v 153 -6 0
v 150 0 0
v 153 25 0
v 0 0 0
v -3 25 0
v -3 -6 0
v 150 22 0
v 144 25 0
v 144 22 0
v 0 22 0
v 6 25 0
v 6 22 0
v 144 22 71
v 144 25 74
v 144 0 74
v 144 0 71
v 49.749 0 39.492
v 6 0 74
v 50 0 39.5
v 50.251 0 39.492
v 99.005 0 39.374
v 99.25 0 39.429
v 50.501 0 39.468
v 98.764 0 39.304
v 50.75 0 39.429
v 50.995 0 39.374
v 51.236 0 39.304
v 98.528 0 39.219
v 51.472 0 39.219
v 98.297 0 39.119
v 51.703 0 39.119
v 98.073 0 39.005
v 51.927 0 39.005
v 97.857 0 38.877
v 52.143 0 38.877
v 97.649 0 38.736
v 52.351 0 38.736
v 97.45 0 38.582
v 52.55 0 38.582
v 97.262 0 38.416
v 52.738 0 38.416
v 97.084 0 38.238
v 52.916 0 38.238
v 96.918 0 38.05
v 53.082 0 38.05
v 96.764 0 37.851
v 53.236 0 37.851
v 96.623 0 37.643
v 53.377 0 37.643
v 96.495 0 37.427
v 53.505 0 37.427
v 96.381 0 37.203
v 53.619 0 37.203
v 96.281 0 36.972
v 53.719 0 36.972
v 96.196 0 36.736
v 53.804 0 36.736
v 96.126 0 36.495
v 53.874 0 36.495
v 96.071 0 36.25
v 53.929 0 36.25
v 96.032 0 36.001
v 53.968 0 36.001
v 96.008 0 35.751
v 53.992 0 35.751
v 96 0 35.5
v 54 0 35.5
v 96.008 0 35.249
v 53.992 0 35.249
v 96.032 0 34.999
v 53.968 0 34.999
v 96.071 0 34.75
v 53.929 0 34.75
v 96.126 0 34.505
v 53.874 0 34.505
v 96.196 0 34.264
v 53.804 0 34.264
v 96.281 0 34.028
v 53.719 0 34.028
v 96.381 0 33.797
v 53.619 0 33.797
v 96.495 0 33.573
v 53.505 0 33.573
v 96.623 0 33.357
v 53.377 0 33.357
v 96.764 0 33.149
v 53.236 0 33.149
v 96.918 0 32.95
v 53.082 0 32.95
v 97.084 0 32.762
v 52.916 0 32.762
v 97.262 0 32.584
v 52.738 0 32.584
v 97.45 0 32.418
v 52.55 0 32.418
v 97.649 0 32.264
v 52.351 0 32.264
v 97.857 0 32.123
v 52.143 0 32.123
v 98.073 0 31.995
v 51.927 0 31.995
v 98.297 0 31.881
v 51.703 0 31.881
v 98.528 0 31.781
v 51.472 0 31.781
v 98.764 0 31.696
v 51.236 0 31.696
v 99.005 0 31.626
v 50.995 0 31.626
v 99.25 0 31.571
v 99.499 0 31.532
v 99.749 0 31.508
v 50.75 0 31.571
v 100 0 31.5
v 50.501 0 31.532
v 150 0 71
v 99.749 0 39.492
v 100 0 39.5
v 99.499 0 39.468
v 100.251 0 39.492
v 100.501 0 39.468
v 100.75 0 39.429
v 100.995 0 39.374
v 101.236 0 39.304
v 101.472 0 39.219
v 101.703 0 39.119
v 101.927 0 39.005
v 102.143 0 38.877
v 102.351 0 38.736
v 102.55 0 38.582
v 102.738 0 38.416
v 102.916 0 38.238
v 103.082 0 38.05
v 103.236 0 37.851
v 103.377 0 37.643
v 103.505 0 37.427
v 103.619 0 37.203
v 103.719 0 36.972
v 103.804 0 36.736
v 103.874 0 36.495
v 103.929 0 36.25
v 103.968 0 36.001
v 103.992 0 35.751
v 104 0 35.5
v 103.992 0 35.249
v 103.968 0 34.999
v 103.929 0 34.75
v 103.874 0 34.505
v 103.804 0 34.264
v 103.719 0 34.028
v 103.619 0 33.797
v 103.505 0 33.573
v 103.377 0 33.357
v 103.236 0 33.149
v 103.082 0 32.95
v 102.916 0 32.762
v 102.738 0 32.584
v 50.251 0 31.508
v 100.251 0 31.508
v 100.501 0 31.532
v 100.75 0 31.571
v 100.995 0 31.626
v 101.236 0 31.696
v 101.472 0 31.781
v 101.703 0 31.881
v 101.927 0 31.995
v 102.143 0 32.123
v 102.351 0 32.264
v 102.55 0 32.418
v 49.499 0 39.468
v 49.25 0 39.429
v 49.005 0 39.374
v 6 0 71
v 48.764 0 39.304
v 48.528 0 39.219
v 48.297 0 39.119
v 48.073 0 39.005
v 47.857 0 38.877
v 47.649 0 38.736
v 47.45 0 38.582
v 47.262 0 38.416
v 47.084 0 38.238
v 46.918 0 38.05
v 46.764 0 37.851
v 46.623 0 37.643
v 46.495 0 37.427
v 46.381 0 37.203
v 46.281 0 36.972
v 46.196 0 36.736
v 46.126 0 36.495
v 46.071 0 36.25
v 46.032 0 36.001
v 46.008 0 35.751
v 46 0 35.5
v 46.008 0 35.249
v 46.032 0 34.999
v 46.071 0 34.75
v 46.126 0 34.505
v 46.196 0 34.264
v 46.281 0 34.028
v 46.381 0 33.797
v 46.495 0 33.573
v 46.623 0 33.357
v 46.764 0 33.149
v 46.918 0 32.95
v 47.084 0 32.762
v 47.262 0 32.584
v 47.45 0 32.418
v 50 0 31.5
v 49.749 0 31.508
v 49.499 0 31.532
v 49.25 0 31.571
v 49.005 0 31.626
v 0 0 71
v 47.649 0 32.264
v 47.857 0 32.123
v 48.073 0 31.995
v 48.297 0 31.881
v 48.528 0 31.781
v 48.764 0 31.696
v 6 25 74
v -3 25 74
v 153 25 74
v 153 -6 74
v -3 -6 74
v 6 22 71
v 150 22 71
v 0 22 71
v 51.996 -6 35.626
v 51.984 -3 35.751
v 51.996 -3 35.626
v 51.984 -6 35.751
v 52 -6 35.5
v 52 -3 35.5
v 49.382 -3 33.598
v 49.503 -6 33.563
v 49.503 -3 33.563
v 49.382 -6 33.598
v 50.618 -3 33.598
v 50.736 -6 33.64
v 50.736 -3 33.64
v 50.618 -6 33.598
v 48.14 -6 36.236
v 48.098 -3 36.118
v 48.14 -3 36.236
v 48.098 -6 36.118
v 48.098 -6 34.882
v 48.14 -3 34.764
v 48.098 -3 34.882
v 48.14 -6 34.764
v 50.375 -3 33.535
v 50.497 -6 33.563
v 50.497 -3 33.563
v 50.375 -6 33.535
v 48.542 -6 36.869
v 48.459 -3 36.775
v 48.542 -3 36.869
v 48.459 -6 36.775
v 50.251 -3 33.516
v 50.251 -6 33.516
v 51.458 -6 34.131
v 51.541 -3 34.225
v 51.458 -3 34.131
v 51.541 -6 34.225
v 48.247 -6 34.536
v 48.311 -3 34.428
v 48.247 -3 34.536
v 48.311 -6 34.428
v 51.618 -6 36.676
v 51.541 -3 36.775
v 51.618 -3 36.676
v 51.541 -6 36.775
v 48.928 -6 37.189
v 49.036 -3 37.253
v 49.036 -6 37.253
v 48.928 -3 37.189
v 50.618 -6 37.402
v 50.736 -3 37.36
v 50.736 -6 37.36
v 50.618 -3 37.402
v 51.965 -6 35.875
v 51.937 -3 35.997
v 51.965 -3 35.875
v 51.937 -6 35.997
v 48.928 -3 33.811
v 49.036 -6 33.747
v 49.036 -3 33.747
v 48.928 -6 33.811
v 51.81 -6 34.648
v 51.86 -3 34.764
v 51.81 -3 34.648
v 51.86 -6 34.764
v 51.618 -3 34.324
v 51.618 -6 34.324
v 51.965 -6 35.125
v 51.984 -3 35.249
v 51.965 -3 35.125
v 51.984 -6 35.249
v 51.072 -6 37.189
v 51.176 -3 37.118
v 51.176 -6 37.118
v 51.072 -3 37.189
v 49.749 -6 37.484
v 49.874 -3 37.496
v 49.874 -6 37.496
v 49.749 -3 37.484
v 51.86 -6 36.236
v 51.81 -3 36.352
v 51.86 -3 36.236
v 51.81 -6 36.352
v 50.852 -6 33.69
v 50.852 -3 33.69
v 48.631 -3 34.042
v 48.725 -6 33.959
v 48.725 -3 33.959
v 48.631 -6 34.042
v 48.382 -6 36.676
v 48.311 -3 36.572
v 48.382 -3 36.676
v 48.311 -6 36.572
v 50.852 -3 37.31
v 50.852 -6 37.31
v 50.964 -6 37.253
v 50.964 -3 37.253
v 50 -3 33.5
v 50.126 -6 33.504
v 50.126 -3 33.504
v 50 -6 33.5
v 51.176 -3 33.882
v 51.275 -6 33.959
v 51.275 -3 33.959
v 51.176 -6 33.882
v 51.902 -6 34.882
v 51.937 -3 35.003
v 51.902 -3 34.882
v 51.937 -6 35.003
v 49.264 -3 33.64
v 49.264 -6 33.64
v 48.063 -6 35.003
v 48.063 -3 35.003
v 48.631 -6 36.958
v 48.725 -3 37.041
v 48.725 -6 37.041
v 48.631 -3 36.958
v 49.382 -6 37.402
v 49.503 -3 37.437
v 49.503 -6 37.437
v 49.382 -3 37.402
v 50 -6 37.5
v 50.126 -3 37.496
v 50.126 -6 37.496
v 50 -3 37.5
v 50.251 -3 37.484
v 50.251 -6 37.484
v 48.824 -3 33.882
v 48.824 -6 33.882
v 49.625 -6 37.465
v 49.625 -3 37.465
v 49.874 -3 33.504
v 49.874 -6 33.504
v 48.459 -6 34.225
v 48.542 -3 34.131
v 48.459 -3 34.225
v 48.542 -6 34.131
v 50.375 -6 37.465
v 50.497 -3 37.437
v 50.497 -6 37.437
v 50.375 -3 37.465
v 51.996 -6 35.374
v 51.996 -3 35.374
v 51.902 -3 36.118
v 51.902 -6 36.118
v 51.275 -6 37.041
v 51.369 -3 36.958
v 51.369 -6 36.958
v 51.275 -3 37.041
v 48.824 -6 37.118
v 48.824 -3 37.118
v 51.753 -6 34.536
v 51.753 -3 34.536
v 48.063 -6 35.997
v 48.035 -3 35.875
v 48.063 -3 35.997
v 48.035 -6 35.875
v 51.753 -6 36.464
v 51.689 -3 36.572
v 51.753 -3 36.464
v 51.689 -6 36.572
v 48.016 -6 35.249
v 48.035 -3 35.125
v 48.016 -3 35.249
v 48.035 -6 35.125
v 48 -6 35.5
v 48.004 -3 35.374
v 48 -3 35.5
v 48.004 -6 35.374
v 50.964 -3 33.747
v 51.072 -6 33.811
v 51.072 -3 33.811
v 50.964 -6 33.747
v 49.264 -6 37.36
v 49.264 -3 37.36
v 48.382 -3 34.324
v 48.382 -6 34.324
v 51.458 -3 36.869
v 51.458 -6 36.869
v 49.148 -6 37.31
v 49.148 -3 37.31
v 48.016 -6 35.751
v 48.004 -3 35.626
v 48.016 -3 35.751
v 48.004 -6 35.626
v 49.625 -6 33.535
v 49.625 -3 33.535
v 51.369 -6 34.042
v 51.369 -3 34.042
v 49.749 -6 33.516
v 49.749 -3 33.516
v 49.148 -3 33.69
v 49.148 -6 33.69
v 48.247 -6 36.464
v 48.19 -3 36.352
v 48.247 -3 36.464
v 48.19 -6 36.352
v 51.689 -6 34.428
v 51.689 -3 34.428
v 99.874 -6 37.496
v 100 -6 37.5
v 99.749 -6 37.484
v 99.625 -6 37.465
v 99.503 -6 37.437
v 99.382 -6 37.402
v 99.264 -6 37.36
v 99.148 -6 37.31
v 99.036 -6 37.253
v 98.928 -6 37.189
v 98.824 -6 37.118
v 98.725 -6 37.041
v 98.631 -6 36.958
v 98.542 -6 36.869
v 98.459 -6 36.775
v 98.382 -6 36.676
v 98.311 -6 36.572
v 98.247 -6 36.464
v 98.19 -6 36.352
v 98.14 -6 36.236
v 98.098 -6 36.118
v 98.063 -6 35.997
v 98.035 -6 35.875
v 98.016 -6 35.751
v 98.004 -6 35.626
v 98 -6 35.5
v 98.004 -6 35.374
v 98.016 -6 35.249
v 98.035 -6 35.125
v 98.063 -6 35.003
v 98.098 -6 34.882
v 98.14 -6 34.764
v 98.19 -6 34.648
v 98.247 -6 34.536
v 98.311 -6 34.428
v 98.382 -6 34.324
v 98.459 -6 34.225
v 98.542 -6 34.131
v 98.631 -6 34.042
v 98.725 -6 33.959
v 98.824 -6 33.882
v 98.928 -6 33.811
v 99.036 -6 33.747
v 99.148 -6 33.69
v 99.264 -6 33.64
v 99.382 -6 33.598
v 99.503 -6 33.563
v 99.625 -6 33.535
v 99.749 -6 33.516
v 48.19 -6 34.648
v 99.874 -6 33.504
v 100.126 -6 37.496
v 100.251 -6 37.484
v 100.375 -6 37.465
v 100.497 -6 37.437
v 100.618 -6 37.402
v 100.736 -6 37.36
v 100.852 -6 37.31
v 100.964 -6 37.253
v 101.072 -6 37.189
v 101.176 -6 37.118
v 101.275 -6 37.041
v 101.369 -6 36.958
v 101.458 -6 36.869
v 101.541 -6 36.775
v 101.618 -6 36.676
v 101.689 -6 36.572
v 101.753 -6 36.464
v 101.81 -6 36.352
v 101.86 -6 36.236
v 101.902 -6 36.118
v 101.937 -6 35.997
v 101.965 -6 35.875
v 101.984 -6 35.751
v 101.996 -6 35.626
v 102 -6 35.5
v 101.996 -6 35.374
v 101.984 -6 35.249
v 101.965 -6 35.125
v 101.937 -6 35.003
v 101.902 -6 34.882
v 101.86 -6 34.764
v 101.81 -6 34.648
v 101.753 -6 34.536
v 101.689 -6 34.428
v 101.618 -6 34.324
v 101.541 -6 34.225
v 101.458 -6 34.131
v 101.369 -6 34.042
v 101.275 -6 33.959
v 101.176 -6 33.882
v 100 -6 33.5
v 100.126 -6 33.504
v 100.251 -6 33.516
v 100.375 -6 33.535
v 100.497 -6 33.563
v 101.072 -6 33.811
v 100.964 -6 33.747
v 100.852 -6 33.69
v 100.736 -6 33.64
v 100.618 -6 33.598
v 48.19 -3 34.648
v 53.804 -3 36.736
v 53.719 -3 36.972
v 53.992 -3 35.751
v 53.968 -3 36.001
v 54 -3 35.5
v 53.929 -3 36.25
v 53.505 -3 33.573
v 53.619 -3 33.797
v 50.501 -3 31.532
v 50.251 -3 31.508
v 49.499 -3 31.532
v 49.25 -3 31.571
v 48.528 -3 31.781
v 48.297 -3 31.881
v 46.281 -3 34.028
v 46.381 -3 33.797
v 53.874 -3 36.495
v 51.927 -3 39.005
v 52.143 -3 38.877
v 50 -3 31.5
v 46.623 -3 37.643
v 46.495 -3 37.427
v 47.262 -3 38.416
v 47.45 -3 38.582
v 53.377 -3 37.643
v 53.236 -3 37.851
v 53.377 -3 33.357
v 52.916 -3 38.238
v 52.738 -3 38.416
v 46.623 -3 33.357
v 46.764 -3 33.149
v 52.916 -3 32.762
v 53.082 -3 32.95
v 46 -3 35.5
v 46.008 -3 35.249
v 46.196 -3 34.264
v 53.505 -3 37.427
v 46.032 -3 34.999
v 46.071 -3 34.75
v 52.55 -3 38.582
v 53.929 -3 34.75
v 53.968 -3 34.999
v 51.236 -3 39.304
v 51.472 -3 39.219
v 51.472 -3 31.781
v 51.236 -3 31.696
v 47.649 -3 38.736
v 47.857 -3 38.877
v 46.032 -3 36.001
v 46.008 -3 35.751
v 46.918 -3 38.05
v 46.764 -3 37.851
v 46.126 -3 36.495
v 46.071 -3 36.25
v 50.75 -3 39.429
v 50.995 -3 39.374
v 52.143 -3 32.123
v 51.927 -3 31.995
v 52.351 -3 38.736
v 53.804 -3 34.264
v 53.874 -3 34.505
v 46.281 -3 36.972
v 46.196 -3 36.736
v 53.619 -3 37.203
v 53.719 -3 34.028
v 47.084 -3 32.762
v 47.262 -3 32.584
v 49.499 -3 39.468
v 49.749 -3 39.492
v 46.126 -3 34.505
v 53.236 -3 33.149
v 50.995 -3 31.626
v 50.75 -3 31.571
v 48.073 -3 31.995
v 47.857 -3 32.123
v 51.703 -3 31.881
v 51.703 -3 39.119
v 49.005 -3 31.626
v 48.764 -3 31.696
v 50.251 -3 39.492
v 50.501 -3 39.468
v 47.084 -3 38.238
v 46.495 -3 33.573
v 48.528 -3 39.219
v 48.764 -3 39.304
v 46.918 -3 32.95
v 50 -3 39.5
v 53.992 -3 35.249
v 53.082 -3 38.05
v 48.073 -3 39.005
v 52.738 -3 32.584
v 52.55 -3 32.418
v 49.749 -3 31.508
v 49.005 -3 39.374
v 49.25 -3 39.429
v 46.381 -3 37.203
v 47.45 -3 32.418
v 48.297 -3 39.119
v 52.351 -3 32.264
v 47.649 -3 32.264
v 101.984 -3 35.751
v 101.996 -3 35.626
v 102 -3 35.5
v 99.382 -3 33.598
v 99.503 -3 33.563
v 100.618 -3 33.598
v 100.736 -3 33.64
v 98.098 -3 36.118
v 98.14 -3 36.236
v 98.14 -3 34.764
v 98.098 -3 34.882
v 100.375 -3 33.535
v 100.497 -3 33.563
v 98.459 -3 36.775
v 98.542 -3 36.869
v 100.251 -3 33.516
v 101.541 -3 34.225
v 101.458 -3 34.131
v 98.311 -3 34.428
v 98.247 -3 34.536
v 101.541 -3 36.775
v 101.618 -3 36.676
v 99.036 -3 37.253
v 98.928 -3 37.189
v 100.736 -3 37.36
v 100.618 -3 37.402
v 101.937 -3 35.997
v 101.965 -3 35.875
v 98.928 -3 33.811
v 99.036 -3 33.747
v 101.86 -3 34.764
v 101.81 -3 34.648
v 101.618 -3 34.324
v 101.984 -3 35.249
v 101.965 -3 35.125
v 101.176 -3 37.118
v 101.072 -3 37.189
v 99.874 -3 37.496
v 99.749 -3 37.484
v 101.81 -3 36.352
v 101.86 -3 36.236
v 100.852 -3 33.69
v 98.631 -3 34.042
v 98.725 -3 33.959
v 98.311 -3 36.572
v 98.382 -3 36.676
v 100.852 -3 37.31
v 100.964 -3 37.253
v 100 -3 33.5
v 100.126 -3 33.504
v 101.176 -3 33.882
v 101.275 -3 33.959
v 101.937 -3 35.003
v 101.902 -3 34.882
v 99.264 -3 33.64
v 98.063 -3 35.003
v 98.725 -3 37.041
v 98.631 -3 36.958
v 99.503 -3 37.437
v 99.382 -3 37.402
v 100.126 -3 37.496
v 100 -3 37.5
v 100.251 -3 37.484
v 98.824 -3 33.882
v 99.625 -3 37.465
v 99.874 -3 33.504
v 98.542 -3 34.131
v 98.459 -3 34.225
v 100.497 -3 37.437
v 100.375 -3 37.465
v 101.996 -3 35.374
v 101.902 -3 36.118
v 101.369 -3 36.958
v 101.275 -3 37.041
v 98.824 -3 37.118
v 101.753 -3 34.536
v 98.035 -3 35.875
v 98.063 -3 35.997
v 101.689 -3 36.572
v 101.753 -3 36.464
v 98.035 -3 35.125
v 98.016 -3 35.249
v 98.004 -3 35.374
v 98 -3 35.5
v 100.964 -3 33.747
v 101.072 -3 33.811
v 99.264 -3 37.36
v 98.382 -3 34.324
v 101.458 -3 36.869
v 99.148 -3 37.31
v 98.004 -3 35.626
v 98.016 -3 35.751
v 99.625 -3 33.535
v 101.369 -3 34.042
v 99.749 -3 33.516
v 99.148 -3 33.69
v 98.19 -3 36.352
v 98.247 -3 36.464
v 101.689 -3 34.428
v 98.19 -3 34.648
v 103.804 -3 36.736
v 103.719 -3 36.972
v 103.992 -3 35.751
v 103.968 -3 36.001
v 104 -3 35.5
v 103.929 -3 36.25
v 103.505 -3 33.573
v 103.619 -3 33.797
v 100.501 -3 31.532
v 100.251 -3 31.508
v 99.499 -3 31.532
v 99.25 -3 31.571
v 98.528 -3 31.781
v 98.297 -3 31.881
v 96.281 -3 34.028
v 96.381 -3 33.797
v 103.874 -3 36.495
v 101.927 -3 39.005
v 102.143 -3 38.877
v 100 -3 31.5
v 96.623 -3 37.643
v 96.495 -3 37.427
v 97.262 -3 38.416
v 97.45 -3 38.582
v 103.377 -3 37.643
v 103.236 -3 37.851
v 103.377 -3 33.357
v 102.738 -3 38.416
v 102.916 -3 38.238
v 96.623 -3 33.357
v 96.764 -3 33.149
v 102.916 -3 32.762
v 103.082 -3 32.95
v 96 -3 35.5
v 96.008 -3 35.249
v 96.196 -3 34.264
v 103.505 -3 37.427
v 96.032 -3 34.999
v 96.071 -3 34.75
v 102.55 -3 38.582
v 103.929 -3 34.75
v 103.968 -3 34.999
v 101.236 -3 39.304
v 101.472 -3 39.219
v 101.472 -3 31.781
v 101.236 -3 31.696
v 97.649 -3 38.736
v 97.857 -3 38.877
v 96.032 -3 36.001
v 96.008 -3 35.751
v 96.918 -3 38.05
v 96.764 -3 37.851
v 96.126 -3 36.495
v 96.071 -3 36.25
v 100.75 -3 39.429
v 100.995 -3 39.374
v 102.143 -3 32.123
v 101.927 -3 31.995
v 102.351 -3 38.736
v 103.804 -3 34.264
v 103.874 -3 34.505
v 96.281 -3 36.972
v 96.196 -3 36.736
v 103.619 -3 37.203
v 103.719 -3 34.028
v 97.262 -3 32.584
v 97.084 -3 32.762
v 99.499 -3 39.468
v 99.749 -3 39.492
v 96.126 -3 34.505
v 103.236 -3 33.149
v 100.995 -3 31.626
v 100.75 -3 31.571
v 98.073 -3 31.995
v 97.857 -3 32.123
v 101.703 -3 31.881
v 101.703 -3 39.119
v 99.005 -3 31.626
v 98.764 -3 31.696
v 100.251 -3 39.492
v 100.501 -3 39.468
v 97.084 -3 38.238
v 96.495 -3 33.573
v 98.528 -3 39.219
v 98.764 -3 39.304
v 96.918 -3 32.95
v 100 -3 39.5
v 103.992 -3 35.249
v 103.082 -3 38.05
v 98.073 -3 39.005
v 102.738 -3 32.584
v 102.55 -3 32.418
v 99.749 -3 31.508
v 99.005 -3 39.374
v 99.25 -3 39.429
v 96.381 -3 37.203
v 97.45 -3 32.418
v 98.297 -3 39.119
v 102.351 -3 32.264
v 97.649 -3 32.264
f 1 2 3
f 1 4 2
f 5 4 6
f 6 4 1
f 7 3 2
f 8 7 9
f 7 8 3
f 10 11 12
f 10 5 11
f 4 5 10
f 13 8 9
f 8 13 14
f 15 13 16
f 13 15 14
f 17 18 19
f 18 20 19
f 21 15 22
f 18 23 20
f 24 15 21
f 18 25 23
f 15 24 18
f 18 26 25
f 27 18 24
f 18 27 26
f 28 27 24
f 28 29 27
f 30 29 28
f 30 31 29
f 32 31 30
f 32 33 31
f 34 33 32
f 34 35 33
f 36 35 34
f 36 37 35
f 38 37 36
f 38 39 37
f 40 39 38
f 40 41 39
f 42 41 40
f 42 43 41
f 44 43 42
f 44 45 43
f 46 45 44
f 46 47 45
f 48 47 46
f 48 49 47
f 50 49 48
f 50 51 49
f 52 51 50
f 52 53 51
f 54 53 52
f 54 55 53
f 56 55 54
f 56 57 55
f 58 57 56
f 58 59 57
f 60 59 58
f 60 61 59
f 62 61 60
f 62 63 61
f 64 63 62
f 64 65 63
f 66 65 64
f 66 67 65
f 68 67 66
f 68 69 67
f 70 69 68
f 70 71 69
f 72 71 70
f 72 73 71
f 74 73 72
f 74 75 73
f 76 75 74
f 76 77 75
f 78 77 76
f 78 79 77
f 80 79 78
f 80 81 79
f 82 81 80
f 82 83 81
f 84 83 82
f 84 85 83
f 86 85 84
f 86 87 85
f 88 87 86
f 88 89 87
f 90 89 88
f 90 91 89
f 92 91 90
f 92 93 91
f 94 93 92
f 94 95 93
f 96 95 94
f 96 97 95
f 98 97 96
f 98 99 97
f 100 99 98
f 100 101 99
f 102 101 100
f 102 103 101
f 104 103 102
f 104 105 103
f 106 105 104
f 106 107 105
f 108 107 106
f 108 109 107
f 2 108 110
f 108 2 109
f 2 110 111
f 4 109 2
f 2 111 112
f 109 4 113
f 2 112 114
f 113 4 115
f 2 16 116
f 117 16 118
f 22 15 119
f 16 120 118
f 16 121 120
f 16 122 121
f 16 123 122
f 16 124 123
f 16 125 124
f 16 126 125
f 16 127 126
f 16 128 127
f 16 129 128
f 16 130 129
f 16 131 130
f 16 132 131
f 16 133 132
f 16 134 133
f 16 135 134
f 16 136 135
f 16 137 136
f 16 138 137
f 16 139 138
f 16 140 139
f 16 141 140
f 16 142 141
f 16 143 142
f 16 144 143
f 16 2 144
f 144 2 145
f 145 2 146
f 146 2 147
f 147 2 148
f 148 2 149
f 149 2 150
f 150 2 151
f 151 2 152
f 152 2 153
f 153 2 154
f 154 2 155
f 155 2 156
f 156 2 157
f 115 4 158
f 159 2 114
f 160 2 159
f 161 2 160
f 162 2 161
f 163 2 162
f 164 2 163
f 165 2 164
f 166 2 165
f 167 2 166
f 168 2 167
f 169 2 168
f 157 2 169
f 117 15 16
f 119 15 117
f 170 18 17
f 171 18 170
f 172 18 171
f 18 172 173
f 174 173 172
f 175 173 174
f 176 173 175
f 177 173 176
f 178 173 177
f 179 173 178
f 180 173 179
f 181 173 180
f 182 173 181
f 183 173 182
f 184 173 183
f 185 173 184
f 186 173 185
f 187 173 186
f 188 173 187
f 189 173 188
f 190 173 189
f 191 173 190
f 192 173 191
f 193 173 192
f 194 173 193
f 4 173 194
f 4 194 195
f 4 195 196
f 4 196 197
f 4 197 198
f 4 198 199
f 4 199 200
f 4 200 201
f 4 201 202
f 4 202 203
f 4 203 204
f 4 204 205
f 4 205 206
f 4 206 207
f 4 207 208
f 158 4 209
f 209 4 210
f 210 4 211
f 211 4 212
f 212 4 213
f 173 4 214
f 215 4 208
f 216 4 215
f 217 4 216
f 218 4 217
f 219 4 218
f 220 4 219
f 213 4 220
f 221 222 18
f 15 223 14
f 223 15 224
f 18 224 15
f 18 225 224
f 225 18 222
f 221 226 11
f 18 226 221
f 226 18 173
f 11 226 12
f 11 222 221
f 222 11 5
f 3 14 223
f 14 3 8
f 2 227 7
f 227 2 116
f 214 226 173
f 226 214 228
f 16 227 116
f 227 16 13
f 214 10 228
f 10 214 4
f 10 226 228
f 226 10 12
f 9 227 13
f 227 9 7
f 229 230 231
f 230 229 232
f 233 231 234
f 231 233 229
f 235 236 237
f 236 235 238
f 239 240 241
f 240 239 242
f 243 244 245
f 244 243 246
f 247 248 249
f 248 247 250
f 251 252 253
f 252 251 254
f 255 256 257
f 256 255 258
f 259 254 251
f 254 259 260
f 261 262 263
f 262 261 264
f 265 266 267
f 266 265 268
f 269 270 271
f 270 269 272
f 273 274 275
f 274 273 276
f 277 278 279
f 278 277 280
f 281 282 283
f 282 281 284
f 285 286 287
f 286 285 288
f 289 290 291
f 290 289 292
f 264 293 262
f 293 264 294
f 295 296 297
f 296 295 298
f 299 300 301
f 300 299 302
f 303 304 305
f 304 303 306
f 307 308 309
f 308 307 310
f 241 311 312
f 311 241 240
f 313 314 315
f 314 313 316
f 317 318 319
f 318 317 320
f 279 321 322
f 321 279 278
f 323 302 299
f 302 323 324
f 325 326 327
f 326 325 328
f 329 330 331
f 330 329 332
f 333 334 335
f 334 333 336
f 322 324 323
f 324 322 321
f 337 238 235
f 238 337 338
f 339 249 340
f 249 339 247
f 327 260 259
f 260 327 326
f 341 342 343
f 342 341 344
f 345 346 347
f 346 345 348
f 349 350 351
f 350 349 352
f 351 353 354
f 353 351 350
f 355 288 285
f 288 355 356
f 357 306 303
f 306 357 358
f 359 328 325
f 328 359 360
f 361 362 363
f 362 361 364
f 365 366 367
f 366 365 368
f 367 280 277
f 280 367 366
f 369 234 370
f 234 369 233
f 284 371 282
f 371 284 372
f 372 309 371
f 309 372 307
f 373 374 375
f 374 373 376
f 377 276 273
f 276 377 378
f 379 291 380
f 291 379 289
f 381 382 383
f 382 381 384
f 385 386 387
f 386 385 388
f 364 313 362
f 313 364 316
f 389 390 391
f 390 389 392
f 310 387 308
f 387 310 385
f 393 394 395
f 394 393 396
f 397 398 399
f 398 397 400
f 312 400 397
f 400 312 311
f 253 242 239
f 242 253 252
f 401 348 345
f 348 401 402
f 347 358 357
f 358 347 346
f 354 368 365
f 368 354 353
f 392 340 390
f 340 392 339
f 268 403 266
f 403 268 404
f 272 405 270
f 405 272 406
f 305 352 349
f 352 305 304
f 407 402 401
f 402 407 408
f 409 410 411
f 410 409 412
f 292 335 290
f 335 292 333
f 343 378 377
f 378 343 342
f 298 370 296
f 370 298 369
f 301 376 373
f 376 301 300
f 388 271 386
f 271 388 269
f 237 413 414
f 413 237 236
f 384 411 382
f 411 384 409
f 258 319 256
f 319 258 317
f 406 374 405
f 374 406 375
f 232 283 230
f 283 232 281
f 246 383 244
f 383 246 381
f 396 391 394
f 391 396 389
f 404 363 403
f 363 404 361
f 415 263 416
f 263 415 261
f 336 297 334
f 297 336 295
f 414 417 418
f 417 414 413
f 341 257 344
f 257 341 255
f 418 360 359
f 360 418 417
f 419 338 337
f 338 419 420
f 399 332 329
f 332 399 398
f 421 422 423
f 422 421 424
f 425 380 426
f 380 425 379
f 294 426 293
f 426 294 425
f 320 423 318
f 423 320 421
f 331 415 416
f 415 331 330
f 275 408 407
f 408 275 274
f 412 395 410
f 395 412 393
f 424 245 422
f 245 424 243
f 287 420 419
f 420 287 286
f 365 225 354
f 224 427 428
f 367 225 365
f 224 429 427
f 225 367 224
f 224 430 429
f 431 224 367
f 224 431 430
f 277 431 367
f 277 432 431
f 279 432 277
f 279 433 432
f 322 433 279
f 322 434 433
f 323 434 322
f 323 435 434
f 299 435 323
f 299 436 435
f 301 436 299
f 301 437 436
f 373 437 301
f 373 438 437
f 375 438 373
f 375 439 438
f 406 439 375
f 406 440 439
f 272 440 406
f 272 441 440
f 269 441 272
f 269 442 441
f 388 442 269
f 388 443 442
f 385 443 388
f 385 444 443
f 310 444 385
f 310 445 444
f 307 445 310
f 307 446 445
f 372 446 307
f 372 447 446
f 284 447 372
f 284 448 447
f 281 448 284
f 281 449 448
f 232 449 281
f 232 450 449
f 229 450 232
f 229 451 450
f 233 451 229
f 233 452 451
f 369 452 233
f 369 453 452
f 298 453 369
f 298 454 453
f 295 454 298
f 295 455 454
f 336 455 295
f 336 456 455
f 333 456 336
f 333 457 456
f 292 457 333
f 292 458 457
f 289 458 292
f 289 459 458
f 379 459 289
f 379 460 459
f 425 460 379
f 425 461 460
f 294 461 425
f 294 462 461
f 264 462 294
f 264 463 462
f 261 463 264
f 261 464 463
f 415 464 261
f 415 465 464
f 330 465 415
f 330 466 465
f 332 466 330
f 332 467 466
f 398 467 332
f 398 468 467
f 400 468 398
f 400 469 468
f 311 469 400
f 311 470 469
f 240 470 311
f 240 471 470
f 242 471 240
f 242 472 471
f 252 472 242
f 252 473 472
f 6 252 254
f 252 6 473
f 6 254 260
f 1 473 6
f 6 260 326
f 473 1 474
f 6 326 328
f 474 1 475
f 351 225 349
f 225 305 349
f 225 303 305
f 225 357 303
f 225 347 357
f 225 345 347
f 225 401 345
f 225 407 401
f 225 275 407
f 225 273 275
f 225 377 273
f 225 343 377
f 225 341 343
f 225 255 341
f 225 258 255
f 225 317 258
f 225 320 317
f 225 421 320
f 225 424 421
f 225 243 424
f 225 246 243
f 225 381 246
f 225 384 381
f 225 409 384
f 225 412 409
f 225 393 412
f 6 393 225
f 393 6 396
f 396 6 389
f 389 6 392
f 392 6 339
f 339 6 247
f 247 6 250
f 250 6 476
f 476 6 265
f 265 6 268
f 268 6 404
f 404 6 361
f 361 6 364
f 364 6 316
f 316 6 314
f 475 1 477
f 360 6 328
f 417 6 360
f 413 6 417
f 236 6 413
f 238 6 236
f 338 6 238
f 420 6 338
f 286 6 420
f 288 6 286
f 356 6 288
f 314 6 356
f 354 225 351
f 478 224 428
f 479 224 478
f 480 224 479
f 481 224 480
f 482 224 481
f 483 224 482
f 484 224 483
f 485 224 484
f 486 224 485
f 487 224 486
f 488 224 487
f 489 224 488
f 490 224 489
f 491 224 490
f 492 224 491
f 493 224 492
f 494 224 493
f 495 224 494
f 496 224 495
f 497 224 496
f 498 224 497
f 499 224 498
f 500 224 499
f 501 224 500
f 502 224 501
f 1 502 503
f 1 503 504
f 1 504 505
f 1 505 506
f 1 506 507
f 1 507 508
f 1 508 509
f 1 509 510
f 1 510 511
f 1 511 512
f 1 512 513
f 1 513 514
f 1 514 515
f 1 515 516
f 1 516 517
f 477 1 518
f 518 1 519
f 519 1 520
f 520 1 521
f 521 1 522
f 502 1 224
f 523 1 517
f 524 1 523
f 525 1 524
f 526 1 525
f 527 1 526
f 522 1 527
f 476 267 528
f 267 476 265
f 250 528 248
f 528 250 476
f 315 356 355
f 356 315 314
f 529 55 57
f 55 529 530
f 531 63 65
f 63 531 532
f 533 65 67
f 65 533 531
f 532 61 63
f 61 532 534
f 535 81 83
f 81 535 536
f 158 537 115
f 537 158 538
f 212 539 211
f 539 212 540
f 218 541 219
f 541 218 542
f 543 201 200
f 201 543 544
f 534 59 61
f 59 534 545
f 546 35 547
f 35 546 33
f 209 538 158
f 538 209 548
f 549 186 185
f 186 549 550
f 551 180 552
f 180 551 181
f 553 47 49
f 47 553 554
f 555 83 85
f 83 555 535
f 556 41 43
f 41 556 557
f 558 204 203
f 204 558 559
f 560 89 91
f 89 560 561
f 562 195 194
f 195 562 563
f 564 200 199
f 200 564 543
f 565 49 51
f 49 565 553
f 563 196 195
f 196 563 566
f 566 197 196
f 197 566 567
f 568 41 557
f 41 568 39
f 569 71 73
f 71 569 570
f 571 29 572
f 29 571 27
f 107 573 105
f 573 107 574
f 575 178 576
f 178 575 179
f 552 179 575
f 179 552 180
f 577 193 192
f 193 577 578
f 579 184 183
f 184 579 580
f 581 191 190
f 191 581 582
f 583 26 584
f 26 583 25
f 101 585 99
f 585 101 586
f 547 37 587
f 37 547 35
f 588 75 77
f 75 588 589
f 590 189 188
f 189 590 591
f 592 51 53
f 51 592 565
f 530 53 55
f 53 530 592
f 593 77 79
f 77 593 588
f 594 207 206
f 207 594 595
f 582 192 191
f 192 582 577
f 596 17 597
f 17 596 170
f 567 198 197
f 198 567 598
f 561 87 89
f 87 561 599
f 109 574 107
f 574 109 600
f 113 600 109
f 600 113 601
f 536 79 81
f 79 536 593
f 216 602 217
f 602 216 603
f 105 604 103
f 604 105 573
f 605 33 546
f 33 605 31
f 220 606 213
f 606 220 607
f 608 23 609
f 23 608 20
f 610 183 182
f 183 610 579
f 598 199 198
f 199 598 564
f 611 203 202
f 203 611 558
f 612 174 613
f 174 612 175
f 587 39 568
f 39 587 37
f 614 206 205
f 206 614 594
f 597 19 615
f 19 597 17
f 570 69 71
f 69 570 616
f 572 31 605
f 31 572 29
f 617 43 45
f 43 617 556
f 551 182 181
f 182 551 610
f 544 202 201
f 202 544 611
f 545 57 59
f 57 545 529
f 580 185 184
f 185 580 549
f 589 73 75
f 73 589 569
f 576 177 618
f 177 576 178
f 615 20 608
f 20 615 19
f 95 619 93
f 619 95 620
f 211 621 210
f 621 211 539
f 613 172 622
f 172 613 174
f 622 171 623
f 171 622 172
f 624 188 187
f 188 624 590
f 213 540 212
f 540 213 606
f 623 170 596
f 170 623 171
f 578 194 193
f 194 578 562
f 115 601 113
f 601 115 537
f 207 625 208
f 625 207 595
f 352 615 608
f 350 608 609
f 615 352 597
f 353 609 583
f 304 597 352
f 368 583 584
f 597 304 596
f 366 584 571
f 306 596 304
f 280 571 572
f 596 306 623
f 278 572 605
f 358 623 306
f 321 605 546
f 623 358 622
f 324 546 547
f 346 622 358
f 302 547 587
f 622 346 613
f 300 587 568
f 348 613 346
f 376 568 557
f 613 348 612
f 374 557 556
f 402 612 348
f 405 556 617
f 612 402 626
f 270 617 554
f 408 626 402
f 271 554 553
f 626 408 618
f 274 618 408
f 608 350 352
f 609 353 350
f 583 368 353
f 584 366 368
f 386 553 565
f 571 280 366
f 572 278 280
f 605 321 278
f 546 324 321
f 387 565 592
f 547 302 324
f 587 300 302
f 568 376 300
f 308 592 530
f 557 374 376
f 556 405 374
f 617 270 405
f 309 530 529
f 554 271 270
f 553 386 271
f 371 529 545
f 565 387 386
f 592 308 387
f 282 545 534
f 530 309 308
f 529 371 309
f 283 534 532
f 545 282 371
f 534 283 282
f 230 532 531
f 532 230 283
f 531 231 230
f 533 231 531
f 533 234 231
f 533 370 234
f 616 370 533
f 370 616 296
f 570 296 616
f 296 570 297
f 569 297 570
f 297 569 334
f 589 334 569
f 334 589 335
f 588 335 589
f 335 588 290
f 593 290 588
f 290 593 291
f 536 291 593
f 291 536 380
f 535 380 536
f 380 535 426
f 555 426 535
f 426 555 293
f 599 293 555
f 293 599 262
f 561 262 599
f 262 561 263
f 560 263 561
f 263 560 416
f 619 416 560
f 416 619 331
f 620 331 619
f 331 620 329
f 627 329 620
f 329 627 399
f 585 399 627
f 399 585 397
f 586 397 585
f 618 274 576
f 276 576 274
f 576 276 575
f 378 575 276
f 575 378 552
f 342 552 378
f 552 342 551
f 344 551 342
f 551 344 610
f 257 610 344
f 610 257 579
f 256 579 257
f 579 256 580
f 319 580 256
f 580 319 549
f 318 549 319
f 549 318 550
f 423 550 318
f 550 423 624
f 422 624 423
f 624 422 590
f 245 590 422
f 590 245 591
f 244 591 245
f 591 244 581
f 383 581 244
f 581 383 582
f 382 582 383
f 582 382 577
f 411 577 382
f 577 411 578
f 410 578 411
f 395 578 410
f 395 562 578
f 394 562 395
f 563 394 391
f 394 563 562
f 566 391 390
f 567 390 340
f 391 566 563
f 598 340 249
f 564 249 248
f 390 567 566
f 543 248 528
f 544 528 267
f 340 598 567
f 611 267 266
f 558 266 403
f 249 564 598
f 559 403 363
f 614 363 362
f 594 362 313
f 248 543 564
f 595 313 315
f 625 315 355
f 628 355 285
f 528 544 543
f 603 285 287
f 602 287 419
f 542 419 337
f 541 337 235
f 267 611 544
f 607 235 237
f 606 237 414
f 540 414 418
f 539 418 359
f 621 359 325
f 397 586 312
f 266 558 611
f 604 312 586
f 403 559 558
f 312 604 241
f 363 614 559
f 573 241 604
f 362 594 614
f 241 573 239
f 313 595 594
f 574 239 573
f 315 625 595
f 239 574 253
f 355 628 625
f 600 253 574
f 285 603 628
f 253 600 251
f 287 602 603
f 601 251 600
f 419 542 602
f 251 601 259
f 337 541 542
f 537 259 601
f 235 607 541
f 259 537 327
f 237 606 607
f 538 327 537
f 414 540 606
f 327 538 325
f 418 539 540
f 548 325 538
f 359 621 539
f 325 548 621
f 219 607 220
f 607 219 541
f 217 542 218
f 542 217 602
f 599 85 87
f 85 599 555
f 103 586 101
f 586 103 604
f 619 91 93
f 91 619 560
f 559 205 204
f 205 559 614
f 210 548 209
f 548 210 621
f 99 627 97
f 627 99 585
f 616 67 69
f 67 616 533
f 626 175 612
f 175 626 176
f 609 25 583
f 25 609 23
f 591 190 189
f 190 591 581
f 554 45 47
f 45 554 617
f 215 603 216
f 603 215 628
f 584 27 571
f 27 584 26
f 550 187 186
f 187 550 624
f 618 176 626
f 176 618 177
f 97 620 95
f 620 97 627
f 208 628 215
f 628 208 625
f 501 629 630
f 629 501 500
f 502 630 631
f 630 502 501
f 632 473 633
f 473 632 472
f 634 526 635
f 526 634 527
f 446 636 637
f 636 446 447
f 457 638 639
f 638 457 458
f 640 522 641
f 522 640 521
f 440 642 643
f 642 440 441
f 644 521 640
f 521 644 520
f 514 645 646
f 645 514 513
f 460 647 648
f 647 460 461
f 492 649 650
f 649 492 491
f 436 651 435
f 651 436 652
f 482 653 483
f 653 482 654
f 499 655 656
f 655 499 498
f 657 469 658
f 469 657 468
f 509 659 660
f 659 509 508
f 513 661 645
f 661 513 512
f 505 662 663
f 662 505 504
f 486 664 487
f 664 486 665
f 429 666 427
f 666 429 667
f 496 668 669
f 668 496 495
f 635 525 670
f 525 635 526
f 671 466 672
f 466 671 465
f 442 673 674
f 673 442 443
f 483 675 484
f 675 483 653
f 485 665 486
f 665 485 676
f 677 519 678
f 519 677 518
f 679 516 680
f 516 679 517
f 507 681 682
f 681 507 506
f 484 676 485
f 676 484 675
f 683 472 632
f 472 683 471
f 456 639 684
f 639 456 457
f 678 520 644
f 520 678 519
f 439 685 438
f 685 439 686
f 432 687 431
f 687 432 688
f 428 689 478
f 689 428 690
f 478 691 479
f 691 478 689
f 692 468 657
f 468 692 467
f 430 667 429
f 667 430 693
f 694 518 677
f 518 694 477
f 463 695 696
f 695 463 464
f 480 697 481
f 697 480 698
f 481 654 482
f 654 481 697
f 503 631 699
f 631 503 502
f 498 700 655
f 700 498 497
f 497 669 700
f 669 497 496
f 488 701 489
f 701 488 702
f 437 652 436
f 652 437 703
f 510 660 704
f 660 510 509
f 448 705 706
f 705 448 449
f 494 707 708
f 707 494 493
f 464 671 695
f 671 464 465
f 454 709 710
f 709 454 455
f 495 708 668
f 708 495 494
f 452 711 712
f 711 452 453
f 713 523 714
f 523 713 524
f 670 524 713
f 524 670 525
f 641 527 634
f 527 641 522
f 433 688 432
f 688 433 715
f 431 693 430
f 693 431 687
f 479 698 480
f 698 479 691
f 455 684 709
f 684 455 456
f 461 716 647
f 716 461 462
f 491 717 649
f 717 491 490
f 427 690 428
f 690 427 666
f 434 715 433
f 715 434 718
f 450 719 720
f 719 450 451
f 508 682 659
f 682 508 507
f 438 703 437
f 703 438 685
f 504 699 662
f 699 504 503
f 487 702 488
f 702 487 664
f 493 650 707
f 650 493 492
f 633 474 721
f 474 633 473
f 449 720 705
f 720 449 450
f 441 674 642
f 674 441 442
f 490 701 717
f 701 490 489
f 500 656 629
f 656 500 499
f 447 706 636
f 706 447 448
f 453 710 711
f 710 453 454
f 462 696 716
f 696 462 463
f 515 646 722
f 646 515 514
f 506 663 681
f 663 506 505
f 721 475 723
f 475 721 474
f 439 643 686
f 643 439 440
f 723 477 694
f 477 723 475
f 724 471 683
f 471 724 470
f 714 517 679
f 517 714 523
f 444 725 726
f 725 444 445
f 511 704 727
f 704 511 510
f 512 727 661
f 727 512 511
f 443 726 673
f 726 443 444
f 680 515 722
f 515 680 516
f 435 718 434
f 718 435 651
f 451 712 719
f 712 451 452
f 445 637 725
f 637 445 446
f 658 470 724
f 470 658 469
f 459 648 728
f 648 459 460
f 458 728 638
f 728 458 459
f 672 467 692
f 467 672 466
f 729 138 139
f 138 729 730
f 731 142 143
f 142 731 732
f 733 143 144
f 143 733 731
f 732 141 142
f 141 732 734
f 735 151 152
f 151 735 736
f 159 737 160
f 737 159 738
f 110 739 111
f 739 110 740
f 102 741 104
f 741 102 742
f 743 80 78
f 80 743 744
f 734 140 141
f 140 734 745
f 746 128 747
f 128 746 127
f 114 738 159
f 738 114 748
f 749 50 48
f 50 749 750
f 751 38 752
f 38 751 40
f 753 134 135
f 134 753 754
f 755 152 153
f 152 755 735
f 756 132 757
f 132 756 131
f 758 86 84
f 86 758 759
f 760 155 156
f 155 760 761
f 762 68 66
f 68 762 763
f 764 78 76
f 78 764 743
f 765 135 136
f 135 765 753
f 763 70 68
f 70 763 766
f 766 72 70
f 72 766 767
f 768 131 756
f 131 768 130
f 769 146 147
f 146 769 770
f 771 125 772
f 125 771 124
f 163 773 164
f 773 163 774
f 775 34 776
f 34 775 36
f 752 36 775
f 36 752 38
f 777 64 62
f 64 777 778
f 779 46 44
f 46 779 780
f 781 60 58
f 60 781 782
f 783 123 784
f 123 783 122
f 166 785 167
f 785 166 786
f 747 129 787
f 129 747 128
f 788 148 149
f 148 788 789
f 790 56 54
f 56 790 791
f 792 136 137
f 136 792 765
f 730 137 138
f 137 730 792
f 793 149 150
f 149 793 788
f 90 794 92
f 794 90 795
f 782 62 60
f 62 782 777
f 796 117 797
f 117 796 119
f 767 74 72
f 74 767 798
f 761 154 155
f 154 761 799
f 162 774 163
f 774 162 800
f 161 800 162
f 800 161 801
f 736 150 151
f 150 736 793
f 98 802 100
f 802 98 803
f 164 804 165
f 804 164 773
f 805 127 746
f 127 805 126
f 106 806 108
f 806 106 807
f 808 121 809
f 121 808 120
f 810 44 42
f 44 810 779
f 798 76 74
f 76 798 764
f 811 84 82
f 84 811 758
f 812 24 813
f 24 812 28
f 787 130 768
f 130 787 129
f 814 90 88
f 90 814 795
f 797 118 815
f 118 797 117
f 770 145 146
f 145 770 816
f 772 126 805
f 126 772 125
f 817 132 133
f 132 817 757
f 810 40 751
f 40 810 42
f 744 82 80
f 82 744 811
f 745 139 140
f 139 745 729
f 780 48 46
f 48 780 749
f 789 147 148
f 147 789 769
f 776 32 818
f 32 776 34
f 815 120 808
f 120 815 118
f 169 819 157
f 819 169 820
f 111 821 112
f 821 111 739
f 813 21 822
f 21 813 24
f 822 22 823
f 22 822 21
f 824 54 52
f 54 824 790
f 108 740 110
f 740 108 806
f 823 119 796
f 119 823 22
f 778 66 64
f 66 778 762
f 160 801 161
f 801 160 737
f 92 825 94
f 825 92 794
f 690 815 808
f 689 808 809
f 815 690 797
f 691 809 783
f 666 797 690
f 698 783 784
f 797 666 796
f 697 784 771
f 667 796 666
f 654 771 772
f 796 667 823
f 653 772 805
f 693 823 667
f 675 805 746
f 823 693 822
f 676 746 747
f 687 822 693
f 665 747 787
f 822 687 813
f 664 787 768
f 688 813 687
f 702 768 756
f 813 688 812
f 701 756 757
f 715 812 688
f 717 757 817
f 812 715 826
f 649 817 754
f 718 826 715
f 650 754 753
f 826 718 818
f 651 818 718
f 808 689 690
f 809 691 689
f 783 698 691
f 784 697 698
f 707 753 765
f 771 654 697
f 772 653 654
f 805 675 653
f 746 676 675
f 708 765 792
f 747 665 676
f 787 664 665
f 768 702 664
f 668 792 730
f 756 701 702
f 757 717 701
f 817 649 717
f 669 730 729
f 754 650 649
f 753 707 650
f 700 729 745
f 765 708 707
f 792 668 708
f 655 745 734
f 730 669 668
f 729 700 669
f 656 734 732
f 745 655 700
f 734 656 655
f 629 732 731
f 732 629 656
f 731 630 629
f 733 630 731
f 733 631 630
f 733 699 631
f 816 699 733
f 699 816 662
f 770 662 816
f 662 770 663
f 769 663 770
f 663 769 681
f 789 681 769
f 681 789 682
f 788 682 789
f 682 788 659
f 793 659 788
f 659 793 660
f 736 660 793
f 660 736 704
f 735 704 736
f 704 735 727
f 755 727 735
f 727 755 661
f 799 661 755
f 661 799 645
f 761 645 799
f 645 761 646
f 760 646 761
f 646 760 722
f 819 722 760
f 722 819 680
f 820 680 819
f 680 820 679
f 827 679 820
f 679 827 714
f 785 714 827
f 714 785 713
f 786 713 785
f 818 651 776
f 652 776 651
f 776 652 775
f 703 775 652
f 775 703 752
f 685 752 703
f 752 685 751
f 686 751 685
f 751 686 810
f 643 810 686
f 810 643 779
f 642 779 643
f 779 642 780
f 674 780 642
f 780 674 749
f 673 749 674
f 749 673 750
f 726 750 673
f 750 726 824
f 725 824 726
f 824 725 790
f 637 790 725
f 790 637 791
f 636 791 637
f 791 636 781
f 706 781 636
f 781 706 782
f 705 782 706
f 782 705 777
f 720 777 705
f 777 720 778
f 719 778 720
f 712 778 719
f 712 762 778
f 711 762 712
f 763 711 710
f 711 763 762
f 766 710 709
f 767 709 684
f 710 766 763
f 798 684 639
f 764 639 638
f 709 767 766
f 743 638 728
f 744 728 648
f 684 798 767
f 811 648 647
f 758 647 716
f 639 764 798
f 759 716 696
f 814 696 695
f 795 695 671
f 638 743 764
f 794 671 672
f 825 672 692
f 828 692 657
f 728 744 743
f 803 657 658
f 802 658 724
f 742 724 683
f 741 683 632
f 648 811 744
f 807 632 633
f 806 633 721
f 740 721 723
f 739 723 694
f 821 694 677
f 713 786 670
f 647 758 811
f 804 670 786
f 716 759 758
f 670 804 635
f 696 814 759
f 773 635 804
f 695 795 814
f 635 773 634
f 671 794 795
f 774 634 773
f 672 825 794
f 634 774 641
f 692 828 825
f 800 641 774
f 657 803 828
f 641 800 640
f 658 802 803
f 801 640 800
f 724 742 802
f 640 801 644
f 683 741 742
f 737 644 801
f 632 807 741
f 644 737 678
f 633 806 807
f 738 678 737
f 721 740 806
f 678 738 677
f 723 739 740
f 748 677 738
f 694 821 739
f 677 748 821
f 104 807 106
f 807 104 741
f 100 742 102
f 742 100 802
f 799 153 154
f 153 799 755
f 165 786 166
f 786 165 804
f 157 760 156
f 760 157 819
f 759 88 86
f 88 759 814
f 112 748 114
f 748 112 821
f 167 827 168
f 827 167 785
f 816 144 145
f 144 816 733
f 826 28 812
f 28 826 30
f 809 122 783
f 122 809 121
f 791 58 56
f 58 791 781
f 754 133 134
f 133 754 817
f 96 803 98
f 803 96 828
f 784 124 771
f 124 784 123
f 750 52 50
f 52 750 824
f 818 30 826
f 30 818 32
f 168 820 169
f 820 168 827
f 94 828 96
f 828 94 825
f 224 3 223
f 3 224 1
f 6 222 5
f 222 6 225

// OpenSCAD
SWITCH_HEIGHT=22;
SWITCH_DEPTH=71;
SWITCH_WIDTH=150;

SHELL_THICKNESS=3;

SCREW_HOLE=4;

$fn = 100;


module screw() {
  union() {
    translate([0,0,SHELL_THICKNESS]) {
      cylinder(h=SHELL_THICKNESS*2, d=SCREW_HOLE, center=true);
    };
    translate([0,0,SHELL_THICKNESS/2]) {
      cylinder(h=SHELL_THICKNESS, d=SCREW_HOLE*2, center=true);
    };
  }
}

difference() {
  linear_extrude(SWITCH_DEPTH + (SHELL_THICKNESS)) {
    polygon([
    [-SHELL_THICKNESS, -SHELL_THICKNESS * 2],
    [-SHELL_THICKNESS, SWITCH_HEIGHT + SHELL_THICKNESS],
    [SWITCH_WIDTH + SHELL_THICKNESS, SWITCH_HEIGHT + SHELL_THICKNESS],
    [SWITCH_WIDTH + SHELL_THICKNESS, -SHELL_THICKNESS * 2],
    ]);
  }
  union () {
    linear_extrude(SWITCH_DEPTH + (SHELL_THICKNESS)) {
      polygon([
        [SHELL_THICKNESS * 2, 0],
        [SHELL_THICKNESS * 2, SWITCH_HEIGHT + SHELL_THICKNESS],
        [SWITCH_WIDTH - (SHELL_THICKNESS * 2), SWITCH_HEIGHT + SHELL_THICKNESS],
        [SWITCH_WIDTH - (SHELL_THICKNESS * 2), 0],
      ]);
    };
    linear_extrude(SWITCH_DEPTH) {
      polygon([
        [0, 0],
        [0, SWITCH_HEIGHT],
        [SWITCH_WIDTH,SWITCH_HEIGHT],
        [SWITCH_WIDTH,0],
      ]);
    };
  };
  union () {
    translate([SWITCH_WIDTH/3, 0, SWITCH_DEPTH/2,]) {
      rotate([90,0,0]) {
        screw();
      };
    };
    translate([SWITCH_WIDTH/1.5, 0, SWITCH_DEPTH/2,]) {
      rotate([90,0,0]) {
        screw();
      };
    };
  }
}
